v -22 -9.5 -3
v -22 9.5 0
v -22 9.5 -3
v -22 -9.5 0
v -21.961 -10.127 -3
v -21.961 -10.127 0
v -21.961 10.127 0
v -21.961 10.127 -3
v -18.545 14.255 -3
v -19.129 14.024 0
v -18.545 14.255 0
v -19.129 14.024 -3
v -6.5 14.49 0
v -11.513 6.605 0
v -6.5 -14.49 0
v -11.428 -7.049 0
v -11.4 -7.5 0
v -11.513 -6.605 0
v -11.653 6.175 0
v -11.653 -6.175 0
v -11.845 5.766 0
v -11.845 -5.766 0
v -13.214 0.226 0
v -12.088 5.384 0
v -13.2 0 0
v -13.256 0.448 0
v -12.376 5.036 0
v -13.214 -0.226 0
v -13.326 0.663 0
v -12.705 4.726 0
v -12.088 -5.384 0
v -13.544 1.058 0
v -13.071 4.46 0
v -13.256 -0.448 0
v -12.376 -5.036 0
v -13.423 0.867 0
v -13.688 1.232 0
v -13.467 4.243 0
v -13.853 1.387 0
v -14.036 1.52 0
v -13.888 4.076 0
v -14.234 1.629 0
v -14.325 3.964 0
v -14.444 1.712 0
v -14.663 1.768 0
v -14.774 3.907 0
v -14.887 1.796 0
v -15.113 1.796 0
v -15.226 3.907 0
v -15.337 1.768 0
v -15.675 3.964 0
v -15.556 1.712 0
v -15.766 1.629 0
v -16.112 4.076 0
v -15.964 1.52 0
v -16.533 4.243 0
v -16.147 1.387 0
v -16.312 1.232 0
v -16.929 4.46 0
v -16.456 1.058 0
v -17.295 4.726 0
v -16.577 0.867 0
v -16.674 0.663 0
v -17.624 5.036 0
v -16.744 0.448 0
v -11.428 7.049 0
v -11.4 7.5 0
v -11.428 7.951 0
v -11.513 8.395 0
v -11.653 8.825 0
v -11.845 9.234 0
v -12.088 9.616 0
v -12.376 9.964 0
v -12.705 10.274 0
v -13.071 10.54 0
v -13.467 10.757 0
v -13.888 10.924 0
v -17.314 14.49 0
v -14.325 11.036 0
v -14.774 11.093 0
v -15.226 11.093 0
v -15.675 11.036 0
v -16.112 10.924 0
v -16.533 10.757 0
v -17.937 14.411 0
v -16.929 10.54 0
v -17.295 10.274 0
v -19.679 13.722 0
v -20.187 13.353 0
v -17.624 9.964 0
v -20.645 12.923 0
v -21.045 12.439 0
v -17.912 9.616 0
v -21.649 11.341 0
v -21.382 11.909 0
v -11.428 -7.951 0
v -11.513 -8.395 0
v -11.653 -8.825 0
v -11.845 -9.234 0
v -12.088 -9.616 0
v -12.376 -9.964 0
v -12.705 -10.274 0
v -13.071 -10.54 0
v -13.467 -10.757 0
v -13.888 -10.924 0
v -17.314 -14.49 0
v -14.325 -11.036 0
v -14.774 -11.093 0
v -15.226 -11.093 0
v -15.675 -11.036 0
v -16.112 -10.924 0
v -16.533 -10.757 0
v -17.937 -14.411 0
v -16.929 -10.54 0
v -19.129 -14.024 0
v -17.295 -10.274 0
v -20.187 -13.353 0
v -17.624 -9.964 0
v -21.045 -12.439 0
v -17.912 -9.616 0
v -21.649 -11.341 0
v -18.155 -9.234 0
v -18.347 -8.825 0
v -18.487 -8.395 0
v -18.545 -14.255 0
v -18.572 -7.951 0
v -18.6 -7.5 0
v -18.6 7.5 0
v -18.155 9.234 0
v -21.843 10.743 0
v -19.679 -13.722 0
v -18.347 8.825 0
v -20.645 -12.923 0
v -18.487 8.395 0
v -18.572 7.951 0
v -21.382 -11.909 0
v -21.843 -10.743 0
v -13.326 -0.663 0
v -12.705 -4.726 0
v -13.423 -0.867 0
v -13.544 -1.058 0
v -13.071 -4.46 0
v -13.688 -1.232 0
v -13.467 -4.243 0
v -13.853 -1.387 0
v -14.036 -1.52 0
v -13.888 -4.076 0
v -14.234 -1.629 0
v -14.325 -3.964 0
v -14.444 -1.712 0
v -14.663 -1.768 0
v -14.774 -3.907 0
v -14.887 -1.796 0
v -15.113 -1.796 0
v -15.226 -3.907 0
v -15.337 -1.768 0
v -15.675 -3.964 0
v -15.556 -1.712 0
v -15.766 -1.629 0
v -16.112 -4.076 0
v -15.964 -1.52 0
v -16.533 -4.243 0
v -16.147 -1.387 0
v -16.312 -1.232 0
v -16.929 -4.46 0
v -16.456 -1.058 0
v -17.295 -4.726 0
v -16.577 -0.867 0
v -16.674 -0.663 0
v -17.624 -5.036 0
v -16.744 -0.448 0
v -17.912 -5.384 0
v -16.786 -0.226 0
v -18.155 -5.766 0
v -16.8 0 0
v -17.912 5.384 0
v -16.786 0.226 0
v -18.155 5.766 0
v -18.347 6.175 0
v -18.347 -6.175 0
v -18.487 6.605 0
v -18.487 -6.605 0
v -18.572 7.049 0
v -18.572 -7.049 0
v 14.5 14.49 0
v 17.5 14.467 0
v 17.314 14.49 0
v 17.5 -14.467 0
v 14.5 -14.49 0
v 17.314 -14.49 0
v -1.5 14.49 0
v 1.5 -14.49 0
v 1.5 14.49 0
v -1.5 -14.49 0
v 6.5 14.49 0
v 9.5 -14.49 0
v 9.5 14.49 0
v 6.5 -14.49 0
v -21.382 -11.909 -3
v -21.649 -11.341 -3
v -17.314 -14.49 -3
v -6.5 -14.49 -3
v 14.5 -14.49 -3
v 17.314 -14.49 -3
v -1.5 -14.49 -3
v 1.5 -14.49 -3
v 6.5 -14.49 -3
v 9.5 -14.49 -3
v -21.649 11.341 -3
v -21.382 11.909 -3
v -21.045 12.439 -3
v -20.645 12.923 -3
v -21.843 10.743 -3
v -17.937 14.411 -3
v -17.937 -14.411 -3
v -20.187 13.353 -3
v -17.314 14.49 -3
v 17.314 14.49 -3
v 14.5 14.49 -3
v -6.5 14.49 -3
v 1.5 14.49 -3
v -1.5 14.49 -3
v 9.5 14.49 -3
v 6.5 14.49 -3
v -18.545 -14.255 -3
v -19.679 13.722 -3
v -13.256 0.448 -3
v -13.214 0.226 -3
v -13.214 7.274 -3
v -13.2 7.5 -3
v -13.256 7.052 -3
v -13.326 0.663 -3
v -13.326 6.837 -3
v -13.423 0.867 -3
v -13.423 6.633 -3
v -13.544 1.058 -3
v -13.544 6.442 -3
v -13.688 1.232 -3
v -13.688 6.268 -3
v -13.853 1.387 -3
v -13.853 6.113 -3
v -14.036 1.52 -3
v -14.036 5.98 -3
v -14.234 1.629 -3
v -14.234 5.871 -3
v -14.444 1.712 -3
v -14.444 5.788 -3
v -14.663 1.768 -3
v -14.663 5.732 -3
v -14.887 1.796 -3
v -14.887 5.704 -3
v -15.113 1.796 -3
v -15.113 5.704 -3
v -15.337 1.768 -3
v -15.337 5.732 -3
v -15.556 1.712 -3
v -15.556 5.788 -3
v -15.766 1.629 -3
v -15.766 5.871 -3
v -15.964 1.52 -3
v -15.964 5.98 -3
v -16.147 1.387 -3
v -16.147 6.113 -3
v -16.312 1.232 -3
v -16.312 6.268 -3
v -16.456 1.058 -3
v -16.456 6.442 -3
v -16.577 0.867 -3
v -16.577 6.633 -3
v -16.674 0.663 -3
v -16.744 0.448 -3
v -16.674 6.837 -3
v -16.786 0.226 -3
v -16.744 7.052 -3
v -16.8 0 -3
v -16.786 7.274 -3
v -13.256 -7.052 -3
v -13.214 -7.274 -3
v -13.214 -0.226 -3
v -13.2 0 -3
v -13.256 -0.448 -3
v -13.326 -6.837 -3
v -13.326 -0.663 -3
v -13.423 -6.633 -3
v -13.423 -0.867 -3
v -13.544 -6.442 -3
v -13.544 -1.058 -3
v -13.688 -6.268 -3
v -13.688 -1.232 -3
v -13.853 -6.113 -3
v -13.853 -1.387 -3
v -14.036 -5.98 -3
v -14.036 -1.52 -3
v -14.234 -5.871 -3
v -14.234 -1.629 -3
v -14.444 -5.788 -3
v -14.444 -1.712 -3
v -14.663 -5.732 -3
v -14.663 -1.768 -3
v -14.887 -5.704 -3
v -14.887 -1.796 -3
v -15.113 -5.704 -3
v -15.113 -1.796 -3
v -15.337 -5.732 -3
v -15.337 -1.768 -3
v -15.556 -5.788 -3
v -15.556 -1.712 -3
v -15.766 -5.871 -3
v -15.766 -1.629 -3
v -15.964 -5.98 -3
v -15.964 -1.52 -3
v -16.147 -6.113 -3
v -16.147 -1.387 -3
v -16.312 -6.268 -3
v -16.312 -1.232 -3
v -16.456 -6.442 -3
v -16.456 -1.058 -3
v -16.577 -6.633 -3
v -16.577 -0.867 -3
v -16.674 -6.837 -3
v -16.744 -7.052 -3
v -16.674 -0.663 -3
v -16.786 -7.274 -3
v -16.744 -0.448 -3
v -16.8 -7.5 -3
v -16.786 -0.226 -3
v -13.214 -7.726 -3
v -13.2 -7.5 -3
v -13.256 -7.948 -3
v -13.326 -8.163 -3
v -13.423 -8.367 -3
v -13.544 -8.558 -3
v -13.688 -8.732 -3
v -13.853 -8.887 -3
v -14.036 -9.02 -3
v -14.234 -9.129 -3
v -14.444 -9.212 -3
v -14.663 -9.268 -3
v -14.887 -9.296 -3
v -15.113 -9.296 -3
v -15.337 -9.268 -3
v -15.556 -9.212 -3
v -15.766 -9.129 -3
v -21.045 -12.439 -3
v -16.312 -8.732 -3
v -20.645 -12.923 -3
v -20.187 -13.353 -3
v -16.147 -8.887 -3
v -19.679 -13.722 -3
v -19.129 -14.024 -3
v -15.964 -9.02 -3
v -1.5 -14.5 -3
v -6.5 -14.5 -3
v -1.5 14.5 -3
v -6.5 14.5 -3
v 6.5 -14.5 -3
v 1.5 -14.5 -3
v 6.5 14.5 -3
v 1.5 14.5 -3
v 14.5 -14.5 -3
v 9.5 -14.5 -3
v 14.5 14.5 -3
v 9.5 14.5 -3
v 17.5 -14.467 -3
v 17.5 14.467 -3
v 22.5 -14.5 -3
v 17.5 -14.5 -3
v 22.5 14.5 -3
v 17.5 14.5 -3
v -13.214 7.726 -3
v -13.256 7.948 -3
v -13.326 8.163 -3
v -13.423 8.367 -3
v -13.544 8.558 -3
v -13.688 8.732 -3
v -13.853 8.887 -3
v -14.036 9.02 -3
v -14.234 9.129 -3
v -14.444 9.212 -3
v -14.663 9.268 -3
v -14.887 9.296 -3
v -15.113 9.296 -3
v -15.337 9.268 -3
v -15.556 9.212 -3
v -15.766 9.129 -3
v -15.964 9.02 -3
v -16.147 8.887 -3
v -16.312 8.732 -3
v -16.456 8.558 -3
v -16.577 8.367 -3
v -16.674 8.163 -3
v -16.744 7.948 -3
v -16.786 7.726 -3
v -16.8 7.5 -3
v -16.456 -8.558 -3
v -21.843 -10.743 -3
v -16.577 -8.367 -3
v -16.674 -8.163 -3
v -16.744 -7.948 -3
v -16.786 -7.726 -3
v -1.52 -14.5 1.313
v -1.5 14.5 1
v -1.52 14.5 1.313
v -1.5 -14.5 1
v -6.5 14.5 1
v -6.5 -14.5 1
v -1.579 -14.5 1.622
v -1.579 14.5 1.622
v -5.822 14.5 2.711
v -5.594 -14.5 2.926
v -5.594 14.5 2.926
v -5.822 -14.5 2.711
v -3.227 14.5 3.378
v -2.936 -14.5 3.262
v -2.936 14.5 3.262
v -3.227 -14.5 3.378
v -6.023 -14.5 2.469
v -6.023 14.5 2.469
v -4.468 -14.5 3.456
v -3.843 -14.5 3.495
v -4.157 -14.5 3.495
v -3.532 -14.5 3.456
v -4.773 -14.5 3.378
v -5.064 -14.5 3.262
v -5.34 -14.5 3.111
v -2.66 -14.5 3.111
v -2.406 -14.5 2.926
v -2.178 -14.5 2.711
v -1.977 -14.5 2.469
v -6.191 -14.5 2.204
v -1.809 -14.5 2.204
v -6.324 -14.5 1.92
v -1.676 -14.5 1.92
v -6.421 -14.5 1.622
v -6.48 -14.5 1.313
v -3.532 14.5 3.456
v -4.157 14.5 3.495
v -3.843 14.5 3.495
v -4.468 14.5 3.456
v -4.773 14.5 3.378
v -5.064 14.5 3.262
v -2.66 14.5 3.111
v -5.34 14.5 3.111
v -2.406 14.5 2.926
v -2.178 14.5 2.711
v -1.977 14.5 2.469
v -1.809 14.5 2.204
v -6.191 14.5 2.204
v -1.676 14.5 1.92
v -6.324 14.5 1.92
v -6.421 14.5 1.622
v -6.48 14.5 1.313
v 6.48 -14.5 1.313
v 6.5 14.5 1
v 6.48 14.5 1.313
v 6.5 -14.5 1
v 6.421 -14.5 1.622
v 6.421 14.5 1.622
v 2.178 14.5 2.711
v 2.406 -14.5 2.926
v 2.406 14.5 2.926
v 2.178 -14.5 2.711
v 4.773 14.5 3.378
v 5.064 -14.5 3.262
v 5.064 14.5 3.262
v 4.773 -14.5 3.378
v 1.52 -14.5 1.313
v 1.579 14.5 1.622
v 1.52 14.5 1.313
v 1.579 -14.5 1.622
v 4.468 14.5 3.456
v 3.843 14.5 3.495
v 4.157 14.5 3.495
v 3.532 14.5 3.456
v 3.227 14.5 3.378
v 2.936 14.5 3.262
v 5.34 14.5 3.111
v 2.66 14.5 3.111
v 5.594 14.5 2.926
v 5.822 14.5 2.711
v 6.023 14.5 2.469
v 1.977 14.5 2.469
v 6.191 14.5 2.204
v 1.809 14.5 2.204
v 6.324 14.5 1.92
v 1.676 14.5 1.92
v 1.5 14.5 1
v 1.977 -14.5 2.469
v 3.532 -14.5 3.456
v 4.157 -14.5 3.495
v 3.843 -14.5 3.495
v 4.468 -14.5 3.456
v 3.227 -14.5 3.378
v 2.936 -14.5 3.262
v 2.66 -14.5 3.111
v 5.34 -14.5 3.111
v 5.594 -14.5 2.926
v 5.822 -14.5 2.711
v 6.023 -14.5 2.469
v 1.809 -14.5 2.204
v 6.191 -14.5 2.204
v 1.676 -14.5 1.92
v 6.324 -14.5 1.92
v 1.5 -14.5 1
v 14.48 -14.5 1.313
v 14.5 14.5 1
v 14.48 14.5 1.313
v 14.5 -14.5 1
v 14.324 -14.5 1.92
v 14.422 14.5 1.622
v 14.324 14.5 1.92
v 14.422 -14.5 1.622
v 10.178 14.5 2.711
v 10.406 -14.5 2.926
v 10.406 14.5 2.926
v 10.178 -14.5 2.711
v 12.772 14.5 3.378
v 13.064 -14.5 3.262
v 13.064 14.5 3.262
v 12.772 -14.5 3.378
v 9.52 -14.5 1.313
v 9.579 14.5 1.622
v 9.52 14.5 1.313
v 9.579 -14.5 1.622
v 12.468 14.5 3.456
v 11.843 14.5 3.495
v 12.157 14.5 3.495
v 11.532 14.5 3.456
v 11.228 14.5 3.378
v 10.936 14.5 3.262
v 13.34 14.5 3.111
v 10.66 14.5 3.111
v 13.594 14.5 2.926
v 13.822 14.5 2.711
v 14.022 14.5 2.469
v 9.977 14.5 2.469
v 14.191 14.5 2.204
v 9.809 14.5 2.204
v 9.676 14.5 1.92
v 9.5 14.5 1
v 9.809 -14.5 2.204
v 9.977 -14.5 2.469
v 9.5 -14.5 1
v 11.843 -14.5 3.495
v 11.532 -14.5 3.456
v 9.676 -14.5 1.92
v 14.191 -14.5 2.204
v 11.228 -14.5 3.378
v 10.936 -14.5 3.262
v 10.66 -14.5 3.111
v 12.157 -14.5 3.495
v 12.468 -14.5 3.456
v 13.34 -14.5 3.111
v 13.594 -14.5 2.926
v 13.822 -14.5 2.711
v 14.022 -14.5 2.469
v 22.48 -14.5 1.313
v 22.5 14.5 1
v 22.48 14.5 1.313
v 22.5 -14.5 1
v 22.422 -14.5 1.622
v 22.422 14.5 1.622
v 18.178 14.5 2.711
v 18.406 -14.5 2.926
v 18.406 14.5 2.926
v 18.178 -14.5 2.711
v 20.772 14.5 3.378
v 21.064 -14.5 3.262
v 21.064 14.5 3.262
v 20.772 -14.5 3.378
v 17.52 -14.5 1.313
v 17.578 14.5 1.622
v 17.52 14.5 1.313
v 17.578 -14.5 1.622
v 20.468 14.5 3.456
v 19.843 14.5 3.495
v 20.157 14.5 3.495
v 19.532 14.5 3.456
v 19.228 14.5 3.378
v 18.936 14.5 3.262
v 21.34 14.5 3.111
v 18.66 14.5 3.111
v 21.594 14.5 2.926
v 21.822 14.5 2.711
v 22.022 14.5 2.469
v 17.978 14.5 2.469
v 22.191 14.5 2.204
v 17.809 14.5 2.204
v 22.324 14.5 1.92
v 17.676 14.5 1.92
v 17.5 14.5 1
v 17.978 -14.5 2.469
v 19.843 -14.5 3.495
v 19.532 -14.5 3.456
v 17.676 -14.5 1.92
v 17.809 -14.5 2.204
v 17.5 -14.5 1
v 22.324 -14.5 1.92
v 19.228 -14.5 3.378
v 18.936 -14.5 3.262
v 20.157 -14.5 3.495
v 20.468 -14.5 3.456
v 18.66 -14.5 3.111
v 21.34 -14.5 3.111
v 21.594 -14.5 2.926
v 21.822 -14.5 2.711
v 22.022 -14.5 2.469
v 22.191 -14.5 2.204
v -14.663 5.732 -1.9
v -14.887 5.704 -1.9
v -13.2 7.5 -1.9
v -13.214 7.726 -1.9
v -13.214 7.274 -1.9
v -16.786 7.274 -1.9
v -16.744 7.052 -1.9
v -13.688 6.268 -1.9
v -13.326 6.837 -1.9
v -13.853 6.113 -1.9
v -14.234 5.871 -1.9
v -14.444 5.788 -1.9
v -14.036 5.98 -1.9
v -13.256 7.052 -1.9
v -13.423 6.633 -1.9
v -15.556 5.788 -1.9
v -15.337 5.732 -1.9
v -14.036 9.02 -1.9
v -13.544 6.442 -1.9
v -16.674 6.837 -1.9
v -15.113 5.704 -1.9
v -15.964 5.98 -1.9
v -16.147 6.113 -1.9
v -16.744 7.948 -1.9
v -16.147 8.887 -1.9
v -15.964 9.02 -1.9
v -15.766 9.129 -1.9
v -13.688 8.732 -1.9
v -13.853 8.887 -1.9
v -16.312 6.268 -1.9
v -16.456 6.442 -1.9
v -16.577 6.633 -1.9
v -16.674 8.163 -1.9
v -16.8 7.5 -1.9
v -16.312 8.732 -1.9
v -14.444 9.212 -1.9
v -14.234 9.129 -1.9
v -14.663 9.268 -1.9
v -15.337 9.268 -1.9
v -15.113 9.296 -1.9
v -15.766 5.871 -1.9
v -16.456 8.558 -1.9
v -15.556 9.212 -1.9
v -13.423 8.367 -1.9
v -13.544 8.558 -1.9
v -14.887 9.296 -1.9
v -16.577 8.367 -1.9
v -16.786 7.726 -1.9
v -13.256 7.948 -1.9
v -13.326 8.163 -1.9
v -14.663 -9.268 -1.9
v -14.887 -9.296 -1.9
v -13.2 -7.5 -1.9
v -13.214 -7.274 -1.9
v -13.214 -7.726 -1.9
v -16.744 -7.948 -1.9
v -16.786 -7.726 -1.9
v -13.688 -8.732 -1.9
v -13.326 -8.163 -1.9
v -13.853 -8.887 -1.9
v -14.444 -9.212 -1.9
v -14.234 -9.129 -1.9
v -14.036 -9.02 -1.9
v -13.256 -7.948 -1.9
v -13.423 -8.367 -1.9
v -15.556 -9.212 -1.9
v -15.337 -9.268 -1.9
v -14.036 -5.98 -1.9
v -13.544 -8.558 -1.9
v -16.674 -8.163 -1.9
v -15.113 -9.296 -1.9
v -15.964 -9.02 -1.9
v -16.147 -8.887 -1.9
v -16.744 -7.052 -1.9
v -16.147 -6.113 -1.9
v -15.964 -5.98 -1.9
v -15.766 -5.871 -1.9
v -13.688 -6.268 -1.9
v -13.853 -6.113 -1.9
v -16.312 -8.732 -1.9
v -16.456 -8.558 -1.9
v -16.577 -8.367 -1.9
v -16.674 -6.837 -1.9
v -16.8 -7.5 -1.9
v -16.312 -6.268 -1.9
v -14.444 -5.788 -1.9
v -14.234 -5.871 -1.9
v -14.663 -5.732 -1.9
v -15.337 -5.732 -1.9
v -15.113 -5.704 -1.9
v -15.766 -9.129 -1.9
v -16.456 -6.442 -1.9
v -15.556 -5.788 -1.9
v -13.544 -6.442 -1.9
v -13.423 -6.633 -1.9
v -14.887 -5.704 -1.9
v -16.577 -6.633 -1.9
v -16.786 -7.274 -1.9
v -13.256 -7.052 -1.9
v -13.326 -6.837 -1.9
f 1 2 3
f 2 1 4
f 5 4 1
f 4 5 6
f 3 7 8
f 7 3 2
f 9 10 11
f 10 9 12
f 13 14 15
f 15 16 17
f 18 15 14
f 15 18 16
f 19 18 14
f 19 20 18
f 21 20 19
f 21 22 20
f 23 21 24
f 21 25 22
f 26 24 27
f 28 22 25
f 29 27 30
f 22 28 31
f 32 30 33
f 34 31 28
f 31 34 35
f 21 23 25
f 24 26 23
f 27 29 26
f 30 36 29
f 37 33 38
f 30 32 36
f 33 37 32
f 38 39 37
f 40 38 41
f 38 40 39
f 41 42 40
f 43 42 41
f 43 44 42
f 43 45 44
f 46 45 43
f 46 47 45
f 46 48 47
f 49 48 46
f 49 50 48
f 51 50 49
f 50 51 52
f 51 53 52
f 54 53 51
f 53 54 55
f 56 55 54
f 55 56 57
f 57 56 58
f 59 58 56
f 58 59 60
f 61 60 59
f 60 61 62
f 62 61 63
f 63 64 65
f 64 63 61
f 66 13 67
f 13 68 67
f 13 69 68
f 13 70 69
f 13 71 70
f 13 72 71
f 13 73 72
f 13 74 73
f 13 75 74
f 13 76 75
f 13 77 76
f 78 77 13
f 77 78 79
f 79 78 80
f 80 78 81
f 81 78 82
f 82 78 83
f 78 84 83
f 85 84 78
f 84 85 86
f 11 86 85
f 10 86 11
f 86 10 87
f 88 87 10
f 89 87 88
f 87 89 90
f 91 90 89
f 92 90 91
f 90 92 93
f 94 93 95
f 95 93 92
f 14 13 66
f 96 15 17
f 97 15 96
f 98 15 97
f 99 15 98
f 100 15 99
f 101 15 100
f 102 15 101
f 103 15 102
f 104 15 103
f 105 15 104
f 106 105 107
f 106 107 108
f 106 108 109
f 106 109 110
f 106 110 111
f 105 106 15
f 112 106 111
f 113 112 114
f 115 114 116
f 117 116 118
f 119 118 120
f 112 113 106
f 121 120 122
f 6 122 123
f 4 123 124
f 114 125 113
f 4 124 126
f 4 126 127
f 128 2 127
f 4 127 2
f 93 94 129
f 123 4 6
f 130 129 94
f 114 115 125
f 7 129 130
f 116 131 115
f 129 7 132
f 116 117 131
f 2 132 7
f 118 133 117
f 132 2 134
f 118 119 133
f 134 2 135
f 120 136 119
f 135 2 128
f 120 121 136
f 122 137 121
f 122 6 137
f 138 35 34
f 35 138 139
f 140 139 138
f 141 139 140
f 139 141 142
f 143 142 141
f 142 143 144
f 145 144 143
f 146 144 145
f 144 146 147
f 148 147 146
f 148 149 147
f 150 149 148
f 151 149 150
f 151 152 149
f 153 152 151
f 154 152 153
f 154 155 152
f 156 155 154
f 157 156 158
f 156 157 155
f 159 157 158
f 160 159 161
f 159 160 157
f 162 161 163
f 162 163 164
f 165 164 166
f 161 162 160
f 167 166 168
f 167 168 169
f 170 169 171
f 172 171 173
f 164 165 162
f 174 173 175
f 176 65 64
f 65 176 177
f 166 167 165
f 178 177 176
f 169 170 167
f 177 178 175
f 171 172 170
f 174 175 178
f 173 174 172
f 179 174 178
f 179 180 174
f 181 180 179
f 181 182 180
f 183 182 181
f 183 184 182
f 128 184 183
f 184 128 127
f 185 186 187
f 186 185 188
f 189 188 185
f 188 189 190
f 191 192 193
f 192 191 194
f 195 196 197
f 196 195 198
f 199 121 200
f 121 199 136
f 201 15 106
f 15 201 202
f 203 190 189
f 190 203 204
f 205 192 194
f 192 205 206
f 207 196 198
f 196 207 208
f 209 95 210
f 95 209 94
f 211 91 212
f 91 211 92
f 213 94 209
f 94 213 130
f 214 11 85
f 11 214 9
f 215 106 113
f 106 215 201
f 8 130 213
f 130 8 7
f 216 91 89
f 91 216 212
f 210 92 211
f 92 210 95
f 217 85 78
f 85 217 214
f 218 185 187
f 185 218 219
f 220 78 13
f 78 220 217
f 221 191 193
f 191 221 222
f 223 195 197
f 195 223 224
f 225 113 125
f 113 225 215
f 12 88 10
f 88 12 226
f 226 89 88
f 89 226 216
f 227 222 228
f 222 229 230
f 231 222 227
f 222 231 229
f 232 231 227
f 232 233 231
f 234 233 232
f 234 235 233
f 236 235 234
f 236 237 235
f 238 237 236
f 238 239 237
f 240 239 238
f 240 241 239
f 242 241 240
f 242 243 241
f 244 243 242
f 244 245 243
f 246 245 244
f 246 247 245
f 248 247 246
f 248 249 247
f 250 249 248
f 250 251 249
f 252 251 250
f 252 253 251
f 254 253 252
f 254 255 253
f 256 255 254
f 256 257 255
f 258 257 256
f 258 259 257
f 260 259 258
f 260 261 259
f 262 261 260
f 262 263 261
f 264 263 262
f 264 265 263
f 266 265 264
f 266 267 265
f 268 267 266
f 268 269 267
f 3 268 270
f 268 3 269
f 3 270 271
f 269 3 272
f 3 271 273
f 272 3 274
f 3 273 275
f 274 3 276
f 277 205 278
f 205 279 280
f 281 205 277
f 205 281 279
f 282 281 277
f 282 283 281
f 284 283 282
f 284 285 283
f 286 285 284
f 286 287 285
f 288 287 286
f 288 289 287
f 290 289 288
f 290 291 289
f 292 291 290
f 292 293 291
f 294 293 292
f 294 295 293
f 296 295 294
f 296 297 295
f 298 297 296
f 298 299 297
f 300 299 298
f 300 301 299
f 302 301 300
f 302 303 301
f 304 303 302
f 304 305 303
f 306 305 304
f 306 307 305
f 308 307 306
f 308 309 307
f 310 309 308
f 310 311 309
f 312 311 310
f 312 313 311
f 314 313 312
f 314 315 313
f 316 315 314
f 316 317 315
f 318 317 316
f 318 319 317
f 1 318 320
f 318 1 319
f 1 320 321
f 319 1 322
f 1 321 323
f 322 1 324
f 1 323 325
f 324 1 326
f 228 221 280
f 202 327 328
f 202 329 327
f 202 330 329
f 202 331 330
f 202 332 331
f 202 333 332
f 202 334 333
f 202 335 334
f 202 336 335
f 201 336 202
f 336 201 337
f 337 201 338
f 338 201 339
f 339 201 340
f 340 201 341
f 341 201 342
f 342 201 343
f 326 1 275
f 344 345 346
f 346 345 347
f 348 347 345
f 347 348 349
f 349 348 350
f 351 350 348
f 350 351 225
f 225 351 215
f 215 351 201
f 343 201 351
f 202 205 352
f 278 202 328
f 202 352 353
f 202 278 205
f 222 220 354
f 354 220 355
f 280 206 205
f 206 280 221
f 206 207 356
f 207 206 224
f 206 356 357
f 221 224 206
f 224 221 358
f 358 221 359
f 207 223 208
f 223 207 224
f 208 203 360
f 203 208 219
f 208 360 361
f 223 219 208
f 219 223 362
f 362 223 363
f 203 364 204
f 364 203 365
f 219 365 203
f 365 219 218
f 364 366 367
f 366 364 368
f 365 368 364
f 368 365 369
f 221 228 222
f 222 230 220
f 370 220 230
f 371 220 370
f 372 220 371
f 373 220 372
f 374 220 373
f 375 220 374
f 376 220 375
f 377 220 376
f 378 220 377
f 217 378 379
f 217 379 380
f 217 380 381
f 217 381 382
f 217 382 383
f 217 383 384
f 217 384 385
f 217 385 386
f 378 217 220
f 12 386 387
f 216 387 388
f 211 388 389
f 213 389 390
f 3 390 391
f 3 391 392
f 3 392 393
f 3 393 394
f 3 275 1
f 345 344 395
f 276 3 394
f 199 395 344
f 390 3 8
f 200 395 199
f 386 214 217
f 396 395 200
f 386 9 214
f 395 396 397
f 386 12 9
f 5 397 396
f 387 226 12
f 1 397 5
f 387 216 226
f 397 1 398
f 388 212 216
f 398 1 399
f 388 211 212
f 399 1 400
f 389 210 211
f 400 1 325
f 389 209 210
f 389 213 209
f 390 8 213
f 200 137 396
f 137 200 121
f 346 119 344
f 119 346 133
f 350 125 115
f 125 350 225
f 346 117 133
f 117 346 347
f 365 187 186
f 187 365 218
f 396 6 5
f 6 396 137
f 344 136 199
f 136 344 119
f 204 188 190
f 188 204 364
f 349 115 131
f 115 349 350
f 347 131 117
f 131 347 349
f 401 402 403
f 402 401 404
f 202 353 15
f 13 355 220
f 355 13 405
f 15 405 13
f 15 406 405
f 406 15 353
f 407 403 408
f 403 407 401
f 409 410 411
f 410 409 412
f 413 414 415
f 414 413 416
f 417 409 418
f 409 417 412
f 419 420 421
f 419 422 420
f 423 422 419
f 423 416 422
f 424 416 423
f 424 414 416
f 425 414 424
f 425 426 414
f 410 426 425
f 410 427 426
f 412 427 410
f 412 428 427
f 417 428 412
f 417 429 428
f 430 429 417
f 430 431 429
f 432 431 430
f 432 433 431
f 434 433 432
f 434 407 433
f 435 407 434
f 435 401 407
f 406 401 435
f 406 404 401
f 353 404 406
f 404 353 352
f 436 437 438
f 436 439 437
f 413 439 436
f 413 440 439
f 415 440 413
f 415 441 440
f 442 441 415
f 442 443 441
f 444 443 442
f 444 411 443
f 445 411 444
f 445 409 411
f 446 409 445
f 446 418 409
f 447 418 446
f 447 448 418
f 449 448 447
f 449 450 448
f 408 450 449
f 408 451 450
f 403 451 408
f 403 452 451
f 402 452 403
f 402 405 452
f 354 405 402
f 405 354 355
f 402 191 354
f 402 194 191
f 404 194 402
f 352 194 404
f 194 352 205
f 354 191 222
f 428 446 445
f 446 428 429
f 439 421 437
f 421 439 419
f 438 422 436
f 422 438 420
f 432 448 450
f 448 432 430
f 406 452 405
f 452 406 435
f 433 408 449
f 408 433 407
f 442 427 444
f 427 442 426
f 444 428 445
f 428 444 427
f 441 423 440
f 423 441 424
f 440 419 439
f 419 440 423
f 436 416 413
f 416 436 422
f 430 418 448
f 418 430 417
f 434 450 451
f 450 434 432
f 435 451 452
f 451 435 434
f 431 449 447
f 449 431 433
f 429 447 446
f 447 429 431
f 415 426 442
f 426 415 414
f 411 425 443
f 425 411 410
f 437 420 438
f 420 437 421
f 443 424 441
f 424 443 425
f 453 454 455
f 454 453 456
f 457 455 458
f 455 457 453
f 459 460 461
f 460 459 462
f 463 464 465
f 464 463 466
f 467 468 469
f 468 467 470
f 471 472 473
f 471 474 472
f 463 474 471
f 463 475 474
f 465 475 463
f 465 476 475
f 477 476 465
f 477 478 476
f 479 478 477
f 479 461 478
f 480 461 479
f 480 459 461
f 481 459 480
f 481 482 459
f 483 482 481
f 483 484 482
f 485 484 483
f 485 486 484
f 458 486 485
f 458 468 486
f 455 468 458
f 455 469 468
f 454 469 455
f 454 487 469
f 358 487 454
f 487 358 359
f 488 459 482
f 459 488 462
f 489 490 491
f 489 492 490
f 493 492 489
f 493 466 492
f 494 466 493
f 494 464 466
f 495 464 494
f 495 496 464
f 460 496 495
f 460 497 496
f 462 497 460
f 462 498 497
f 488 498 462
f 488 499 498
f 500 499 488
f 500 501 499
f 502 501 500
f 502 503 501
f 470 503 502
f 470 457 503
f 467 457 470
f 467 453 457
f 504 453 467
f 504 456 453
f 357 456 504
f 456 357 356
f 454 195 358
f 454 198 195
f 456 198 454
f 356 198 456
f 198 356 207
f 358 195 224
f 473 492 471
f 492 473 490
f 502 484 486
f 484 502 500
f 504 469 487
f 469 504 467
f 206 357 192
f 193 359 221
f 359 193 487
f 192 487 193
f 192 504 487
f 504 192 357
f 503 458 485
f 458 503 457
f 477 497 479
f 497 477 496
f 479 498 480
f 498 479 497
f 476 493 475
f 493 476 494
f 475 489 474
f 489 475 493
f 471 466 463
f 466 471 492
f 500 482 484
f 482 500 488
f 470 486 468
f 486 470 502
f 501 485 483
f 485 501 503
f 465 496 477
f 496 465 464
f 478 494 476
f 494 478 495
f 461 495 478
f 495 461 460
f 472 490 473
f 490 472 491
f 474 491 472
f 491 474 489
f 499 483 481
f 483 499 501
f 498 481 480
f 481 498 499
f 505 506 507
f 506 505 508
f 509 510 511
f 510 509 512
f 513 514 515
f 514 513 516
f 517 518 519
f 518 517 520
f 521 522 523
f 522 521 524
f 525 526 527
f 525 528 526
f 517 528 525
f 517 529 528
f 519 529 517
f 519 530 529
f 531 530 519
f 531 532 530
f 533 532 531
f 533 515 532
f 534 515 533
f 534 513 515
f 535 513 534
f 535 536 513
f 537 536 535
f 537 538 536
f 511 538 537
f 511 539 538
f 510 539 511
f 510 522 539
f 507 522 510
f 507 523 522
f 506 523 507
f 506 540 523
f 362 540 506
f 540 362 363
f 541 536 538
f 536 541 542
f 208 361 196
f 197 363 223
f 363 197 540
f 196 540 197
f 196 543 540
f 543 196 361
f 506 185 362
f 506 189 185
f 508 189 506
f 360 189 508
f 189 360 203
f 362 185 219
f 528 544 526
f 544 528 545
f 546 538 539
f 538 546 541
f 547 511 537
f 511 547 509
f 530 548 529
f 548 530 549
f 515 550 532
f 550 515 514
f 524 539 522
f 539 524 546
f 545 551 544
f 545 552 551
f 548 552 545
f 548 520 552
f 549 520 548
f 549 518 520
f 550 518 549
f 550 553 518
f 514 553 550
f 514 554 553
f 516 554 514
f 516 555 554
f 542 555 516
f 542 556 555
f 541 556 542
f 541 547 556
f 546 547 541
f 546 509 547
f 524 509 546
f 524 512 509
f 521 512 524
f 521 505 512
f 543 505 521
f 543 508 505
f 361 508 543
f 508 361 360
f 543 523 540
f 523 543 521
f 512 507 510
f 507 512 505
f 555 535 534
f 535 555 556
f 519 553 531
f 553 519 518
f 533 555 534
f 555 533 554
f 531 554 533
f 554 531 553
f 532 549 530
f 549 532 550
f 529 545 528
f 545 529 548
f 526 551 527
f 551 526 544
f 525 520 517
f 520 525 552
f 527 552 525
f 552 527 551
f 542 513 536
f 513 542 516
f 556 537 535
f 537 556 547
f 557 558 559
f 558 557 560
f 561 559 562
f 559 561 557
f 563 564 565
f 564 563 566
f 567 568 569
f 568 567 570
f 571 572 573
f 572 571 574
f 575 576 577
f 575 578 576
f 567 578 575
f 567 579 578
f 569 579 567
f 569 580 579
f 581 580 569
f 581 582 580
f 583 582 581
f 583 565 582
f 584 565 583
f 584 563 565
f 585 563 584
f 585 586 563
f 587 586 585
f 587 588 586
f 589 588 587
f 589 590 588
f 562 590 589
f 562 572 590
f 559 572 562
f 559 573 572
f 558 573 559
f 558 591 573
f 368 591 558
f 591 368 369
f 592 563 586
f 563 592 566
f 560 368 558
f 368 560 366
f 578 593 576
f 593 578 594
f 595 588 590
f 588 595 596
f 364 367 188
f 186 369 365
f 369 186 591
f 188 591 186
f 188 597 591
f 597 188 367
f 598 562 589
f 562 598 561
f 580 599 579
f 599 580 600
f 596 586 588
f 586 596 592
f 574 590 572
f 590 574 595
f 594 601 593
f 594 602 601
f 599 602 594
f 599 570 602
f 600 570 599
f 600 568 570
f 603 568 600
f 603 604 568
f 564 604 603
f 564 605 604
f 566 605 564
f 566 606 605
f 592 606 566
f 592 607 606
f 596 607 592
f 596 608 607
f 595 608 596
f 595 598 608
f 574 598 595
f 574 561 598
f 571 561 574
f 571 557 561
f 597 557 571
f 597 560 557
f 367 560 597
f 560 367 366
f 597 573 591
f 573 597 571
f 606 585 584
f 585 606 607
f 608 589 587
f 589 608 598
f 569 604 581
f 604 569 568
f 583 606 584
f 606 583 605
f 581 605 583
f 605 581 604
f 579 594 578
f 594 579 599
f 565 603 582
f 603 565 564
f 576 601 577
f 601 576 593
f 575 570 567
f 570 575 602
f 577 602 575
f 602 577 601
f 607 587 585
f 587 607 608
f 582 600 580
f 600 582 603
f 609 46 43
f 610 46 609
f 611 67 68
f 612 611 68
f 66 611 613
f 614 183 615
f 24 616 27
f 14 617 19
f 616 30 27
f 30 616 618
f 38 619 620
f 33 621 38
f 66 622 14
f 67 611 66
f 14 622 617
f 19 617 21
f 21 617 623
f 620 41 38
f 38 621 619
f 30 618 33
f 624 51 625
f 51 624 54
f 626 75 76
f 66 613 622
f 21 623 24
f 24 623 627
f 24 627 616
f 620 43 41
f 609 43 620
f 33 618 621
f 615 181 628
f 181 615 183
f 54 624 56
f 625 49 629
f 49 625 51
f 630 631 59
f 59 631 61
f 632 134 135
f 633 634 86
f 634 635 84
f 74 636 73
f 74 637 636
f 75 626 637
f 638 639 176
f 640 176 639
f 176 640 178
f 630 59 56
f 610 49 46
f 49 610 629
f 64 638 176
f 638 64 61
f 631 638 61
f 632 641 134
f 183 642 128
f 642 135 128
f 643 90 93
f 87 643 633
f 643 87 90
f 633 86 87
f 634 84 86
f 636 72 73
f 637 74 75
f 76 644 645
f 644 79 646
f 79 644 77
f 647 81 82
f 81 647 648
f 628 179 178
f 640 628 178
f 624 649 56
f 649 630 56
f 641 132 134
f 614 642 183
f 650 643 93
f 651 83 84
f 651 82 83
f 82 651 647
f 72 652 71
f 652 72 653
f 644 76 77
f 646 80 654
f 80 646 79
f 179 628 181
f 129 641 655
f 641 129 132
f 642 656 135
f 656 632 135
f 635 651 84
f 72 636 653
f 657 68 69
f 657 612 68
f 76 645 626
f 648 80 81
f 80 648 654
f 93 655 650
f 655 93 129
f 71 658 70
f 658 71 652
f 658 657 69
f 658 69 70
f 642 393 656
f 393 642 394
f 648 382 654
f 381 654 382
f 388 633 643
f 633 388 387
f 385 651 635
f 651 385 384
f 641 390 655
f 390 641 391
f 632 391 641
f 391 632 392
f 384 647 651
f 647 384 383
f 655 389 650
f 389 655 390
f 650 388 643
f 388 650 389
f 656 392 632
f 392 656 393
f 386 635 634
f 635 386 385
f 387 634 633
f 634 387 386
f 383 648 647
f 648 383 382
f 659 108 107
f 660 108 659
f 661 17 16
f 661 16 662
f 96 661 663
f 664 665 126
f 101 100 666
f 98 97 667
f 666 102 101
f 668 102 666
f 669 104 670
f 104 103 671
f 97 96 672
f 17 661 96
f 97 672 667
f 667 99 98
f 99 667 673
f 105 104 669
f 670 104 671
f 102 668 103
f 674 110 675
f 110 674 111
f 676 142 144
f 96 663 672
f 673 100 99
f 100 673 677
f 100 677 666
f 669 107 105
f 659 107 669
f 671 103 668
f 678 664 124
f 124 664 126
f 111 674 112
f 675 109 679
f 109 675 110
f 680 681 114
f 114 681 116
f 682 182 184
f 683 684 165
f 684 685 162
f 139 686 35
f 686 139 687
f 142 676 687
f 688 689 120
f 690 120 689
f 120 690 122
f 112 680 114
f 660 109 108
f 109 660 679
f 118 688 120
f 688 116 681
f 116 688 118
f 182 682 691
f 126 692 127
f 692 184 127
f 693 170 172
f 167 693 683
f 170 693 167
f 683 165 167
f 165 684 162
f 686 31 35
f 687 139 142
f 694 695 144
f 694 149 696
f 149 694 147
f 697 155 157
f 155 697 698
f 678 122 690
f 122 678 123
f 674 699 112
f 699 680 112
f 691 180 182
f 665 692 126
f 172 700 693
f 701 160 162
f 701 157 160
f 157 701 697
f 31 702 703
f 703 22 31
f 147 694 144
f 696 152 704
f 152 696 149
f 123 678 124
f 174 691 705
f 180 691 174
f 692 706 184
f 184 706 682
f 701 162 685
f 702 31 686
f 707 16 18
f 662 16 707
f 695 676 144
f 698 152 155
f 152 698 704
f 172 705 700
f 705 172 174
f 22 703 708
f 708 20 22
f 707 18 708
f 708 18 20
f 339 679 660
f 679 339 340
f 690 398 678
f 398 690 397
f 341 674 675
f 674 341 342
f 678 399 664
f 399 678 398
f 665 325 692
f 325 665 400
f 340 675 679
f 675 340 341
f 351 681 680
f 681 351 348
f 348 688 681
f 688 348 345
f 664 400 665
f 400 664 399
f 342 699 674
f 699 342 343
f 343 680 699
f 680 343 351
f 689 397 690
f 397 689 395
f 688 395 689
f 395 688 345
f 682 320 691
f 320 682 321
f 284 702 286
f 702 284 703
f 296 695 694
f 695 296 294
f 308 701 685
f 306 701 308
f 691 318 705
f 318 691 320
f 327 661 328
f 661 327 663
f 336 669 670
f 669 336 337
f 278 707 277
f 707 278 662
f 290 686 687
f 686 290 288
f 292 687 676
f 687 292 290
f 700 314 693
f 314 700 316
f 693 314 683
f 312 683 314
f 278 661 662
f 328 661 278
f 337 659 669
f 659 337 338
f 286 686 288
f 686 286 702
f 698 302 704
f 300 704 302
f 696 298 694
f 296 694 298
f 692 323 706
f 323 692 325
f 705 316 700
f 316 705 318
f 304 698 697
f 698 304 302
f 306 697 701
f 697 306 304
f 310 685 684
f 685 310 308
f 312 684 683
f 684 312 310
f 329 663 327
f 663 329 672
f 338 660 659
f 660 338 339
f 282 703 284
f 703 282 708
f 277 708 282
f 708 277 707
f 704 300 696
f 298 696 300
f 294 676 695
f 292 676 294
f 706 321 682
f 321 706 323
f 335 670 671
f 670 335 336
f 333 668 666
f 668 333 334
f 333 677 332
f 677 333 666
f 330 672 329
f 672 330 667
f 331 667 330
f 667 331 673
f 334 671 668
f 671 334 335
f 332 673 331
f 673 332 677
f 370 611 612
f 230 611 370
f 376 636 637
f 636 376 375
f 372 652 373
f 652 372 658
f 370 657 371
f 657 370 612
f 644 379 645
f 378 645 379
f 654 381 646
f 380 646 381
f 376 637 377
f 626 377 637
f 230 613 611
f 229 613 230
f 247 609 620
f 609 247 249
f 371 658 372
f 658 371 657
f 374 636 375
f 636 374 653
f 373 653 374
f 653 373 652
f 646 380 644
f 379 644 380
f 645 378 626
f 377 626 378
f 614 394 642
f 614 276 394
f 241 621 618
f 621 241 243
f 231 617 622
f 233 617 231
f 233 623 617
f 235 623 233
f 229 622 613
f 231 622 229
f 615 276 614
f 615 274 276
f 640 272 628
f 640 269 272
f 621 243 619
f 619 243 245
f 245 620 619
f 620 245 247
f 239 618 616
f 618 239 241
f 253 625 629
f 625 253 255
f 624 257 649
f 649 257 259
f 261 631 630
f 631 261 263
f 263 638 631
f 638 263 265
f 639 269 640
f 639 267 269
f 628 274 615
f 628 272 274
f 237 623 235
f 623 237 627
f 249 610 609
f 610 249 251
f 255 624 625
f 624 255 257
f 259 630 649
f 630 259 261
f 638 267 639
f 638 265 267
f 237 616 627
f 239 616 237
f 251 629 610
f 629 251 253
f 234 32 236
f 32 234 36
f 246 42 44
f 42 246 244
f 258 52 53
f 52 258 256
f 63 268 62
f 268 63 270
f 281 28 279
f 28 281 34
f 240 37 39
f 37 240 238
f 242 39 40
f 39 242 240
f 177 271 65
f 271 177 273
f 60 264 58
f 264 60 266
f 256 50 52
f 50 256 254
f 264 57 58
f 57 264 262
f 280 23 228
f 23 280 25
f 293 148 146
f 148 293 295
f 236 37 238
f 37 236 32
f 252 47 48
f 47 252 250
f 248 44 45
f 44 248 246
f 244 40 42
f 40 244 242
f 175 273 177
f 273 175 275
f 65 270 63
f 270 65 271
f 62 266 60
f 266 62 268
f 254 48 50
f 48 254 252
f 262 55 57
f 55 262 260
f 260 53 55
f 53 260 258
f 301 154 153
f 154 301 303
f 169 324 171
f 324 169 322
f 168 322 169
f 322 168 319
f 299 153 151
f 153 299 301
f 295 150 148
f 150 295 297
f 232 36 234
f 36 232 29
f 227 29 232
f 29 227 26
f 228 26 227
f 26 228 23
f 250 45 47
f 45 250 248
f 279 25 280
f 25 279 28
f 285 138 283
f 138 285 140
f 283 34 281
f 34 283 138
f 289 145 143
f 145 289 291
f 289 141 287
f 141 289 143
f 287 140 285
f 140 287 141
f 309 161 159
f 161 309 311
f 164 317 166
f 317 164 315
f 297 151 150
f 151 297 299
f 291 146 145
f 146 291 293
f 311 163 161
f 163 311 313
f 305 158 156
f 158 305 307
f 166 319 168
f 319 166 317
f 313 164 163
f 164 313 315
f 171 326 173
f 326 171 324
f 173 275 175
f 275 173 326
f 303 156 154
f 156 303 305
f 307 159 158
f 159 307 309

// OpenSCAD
$fn = 50;


difference() {
	union() {
		translate(v = [0, 0, -3]) {
			hull() {
				translate(v = [-17.0000000000, 9.5000000000, 0]) {
					cylinder(h = 3, r = 5);
				}
				translate(v = [17.0000000000, 9.5000000000, 0]) {
					cylinder(h = 3, r = 5);
				}
				translate(v = [-17.0000000000, -9.5000000000, 0]) {
					cylinder(h = 3, r = 5);
				}
				translate(v = [17.0000000000, -9.5000000000, 0]) {
					cylinder(h = 3, r = 5);
				}
			}
		}
		translate(v = [-4.0000000000, 14.5000000000, -1.5000000000]) {
			rotate(a = [90, 0, 0]) {
				hull() {
					translate(v = [-0.0000000000, 2.5000000000, 0]) {
						cylinder(h = 29, r = 2.5000000000);
					}
					translate(v = [0.0000000000, 2.5000000000, 0]) {
						cylinder(h = 29, r = 2.5000000000);
					}
					translate(v = [-0.0000000000, -2.5000000000, 0]) {
						cylinder(h = 29, r = 2.5000000000);
					}
					translate(v = [0.0000000000, -2.5000000000, 0]) {
						cylinder(h = 29, r = 2.5000000000);
					}
				}
			}
		}
		translate(v = [4.0000000000, 14.5000000000, -1.5000000000]) {
			rotate(a = [90, 0, 0]) {
				hull() {
					translate(v = [-0.0000000000, 2.5000000000, 0]) {
						cylinder(h = 29, r = 2.5000000000);
					}
					translate(v = [0.0000000000, 2.5000000000, 0]) {
						cylinder(h = 29, r = 2.5000000000);
					}
					translate(v = [-0.0000000000, -2.5000000000, 0]) {
						cylinder(h = 29, r = 2.5000000000);
					}
					translate(v = [0.0000000000, -2.5000000000, 0]) {
						cylinder(h = 29, r = 2.5000000000);
					}
				}
			}
		}
		translate(v = [12.0000000000, 14.5000000000, -1.5000000000]) {
			rotate(a = [90, 0, 0]) {
				hull() {
					translate(v = [-0.0000000000, 2.5000000000, 0]) {
						cylinder(h = 29, r = 2.5000000000);
					}
					translate(v = [0.0000000000, 2.5000000000, 0]) {
						cylinder(h = 29, r = 2.5000000000);
					}
					translate(v = [-0.0000000000, -2.5000000000, 0]) {
						cylinder(h = 29, r = 2.5000000000);
					}
					translate(v = [0.0000000000, -2.5000000000, 0]) {
						cylinder(h = 29, r = 2.5000000000);
					}
				}
			}
		}
		translate(v = [20.0000000000, 14.5000000000, -1.5000000000]) {
			rotate(a = [90, 0, 0]) {
				hull() {
					translate(v = [-0.0000000000, 2.5000000000, 0]) {
						cylinder(h = 29, r = 2.5000000000);
					}
					translate(v = [0.0000000000, 2.5000000000, 0]) {
						cylinder(h = 29, r = 2.5000000000);
					}
					translate(v = [-0.0000000000, -2.5000000000, 0]) {
						cylinder(h = 29, r = 2.5000000000);
					}
					translate(v = [0.0000000000, -2.5000000000, 0]) {
						cylinder(h = 29, r = 2.5000000000);
					}
				}
			}
		}
	}
	union() {
		translate(v = [-15.0000000000, 7.5000000000, 0]) {
			rotate(a = [0, 0, 0]) {
				difference() {
					union() {
						translate(v = [0, 0, -3.0000000000]) {
							cylinder(h = 3, r = 1.5000000000);
						}
						translate(v = [0, 0, -1.9000000000]) {
							cylinder(h = 1.9000000000, r1 = 1.8000000000, r2 = 3.6000000000);
						}
						translate(v = [0, 0, -3.0000000000]) {
							cylinder(h = 3, r = 1.8000000000);
						}
						translate(v = [0, 0, -3.0000000000]) {
							cylinder(h = 3, r = 1.5000000000);
						}
					}
					union();
				}
			}
		}
		translate(v = [-15.0000000000, -7.5000000000, 0]) {
			rotate(a = [0, 0, 0]) {
				difference() {
					union() {
						translate(v = [0, 0, -3.0000000000]) {
							cylinder(h = 3, r = 1.5000000000);
						}
						translate(v = [0, 0, -1.9000000000]) {
							cylinder(h = 1.9000000000, r1 = 1.8000000000, r2 = 3.6000000000);
						}
						translate(v = [0, 0, -3.0000000000]) {
							cylinder(h = 3, r = 1.8000000000);
						}
						translate(v = [0, 0, -3.0000000000]) {
							cylinder(h = 3, r = 1.5000000000);
						}
					}
					union();
				}
			}
		}
		translate(v = [-250.0000000000, -250.0000000000, -503]) {
			cube(size = [500, 500, 500]);
		}
		translate(v = [-250.0000000000, -250.0000000000, -503]) {
			cube(size = [500, 500, 500]);
		}
		translate(v = [-250.0000000000, -250.0000000000, -503]) {
			cube(size = [500, 500, 500]);
		}
		translate(v = [-15.0000000000, -7.5000000000, -100.0000000000]) {
			cylinder(h = 200, r = 1.8000000000);
		}
		translate(v = [-15.0000000000, 7.5000000000, -100.0000000000]) {
			cylinder(h = 200, r = 1.8000000000);
		}
		translate(v = [-15.0000000000, -7.5000000000, -100.0000000000]) {
			cylinder(h = 200, r = 1.8000000000);
		}
		translate(v = [-15.0000000000, 0.0000000000, -100.0000000000]) {
			cylinder(h = 200, r = 1.8000000000);
		}
		translate(v = [-15.0000000000, 7.5000000000, -100.0000000000]) {
			cylinder(h = 200, r = 1.8000000000);
		}
		translate(v = [-15.0000000000, -7.5000000000, -100.0000000000]) {
			cylinder(h = 200, r = 1.8000000000);
		}
		translate(v = [-15.0000000000, 0.0000000000, -100.0000000000]) {
			cylinder(h = 200, r = 1.8000000000);
		}
		translate(v = [-15.0000000000, 7.5000000000, -100.0000000000]) {
			cylinder(h = 200, r = 1.8000000000);
		}
		translate(v = [-15.0000000000, -7.5000000000, -100.0000000000]) {
			cylinder(h = 200, r = 1.8000000000);
		}
		translate(v = [-15.0000000000, 0.0000000000, -100.0000000000]) {
			cylinder(h = 200, r = 1.8000000000);
		}
		translate(v = [-15.0000000000, 7.5000000000, -100.0000000000]) {
			cylinder(h = 200, r = 1.8000000000);
		}
	}
}
